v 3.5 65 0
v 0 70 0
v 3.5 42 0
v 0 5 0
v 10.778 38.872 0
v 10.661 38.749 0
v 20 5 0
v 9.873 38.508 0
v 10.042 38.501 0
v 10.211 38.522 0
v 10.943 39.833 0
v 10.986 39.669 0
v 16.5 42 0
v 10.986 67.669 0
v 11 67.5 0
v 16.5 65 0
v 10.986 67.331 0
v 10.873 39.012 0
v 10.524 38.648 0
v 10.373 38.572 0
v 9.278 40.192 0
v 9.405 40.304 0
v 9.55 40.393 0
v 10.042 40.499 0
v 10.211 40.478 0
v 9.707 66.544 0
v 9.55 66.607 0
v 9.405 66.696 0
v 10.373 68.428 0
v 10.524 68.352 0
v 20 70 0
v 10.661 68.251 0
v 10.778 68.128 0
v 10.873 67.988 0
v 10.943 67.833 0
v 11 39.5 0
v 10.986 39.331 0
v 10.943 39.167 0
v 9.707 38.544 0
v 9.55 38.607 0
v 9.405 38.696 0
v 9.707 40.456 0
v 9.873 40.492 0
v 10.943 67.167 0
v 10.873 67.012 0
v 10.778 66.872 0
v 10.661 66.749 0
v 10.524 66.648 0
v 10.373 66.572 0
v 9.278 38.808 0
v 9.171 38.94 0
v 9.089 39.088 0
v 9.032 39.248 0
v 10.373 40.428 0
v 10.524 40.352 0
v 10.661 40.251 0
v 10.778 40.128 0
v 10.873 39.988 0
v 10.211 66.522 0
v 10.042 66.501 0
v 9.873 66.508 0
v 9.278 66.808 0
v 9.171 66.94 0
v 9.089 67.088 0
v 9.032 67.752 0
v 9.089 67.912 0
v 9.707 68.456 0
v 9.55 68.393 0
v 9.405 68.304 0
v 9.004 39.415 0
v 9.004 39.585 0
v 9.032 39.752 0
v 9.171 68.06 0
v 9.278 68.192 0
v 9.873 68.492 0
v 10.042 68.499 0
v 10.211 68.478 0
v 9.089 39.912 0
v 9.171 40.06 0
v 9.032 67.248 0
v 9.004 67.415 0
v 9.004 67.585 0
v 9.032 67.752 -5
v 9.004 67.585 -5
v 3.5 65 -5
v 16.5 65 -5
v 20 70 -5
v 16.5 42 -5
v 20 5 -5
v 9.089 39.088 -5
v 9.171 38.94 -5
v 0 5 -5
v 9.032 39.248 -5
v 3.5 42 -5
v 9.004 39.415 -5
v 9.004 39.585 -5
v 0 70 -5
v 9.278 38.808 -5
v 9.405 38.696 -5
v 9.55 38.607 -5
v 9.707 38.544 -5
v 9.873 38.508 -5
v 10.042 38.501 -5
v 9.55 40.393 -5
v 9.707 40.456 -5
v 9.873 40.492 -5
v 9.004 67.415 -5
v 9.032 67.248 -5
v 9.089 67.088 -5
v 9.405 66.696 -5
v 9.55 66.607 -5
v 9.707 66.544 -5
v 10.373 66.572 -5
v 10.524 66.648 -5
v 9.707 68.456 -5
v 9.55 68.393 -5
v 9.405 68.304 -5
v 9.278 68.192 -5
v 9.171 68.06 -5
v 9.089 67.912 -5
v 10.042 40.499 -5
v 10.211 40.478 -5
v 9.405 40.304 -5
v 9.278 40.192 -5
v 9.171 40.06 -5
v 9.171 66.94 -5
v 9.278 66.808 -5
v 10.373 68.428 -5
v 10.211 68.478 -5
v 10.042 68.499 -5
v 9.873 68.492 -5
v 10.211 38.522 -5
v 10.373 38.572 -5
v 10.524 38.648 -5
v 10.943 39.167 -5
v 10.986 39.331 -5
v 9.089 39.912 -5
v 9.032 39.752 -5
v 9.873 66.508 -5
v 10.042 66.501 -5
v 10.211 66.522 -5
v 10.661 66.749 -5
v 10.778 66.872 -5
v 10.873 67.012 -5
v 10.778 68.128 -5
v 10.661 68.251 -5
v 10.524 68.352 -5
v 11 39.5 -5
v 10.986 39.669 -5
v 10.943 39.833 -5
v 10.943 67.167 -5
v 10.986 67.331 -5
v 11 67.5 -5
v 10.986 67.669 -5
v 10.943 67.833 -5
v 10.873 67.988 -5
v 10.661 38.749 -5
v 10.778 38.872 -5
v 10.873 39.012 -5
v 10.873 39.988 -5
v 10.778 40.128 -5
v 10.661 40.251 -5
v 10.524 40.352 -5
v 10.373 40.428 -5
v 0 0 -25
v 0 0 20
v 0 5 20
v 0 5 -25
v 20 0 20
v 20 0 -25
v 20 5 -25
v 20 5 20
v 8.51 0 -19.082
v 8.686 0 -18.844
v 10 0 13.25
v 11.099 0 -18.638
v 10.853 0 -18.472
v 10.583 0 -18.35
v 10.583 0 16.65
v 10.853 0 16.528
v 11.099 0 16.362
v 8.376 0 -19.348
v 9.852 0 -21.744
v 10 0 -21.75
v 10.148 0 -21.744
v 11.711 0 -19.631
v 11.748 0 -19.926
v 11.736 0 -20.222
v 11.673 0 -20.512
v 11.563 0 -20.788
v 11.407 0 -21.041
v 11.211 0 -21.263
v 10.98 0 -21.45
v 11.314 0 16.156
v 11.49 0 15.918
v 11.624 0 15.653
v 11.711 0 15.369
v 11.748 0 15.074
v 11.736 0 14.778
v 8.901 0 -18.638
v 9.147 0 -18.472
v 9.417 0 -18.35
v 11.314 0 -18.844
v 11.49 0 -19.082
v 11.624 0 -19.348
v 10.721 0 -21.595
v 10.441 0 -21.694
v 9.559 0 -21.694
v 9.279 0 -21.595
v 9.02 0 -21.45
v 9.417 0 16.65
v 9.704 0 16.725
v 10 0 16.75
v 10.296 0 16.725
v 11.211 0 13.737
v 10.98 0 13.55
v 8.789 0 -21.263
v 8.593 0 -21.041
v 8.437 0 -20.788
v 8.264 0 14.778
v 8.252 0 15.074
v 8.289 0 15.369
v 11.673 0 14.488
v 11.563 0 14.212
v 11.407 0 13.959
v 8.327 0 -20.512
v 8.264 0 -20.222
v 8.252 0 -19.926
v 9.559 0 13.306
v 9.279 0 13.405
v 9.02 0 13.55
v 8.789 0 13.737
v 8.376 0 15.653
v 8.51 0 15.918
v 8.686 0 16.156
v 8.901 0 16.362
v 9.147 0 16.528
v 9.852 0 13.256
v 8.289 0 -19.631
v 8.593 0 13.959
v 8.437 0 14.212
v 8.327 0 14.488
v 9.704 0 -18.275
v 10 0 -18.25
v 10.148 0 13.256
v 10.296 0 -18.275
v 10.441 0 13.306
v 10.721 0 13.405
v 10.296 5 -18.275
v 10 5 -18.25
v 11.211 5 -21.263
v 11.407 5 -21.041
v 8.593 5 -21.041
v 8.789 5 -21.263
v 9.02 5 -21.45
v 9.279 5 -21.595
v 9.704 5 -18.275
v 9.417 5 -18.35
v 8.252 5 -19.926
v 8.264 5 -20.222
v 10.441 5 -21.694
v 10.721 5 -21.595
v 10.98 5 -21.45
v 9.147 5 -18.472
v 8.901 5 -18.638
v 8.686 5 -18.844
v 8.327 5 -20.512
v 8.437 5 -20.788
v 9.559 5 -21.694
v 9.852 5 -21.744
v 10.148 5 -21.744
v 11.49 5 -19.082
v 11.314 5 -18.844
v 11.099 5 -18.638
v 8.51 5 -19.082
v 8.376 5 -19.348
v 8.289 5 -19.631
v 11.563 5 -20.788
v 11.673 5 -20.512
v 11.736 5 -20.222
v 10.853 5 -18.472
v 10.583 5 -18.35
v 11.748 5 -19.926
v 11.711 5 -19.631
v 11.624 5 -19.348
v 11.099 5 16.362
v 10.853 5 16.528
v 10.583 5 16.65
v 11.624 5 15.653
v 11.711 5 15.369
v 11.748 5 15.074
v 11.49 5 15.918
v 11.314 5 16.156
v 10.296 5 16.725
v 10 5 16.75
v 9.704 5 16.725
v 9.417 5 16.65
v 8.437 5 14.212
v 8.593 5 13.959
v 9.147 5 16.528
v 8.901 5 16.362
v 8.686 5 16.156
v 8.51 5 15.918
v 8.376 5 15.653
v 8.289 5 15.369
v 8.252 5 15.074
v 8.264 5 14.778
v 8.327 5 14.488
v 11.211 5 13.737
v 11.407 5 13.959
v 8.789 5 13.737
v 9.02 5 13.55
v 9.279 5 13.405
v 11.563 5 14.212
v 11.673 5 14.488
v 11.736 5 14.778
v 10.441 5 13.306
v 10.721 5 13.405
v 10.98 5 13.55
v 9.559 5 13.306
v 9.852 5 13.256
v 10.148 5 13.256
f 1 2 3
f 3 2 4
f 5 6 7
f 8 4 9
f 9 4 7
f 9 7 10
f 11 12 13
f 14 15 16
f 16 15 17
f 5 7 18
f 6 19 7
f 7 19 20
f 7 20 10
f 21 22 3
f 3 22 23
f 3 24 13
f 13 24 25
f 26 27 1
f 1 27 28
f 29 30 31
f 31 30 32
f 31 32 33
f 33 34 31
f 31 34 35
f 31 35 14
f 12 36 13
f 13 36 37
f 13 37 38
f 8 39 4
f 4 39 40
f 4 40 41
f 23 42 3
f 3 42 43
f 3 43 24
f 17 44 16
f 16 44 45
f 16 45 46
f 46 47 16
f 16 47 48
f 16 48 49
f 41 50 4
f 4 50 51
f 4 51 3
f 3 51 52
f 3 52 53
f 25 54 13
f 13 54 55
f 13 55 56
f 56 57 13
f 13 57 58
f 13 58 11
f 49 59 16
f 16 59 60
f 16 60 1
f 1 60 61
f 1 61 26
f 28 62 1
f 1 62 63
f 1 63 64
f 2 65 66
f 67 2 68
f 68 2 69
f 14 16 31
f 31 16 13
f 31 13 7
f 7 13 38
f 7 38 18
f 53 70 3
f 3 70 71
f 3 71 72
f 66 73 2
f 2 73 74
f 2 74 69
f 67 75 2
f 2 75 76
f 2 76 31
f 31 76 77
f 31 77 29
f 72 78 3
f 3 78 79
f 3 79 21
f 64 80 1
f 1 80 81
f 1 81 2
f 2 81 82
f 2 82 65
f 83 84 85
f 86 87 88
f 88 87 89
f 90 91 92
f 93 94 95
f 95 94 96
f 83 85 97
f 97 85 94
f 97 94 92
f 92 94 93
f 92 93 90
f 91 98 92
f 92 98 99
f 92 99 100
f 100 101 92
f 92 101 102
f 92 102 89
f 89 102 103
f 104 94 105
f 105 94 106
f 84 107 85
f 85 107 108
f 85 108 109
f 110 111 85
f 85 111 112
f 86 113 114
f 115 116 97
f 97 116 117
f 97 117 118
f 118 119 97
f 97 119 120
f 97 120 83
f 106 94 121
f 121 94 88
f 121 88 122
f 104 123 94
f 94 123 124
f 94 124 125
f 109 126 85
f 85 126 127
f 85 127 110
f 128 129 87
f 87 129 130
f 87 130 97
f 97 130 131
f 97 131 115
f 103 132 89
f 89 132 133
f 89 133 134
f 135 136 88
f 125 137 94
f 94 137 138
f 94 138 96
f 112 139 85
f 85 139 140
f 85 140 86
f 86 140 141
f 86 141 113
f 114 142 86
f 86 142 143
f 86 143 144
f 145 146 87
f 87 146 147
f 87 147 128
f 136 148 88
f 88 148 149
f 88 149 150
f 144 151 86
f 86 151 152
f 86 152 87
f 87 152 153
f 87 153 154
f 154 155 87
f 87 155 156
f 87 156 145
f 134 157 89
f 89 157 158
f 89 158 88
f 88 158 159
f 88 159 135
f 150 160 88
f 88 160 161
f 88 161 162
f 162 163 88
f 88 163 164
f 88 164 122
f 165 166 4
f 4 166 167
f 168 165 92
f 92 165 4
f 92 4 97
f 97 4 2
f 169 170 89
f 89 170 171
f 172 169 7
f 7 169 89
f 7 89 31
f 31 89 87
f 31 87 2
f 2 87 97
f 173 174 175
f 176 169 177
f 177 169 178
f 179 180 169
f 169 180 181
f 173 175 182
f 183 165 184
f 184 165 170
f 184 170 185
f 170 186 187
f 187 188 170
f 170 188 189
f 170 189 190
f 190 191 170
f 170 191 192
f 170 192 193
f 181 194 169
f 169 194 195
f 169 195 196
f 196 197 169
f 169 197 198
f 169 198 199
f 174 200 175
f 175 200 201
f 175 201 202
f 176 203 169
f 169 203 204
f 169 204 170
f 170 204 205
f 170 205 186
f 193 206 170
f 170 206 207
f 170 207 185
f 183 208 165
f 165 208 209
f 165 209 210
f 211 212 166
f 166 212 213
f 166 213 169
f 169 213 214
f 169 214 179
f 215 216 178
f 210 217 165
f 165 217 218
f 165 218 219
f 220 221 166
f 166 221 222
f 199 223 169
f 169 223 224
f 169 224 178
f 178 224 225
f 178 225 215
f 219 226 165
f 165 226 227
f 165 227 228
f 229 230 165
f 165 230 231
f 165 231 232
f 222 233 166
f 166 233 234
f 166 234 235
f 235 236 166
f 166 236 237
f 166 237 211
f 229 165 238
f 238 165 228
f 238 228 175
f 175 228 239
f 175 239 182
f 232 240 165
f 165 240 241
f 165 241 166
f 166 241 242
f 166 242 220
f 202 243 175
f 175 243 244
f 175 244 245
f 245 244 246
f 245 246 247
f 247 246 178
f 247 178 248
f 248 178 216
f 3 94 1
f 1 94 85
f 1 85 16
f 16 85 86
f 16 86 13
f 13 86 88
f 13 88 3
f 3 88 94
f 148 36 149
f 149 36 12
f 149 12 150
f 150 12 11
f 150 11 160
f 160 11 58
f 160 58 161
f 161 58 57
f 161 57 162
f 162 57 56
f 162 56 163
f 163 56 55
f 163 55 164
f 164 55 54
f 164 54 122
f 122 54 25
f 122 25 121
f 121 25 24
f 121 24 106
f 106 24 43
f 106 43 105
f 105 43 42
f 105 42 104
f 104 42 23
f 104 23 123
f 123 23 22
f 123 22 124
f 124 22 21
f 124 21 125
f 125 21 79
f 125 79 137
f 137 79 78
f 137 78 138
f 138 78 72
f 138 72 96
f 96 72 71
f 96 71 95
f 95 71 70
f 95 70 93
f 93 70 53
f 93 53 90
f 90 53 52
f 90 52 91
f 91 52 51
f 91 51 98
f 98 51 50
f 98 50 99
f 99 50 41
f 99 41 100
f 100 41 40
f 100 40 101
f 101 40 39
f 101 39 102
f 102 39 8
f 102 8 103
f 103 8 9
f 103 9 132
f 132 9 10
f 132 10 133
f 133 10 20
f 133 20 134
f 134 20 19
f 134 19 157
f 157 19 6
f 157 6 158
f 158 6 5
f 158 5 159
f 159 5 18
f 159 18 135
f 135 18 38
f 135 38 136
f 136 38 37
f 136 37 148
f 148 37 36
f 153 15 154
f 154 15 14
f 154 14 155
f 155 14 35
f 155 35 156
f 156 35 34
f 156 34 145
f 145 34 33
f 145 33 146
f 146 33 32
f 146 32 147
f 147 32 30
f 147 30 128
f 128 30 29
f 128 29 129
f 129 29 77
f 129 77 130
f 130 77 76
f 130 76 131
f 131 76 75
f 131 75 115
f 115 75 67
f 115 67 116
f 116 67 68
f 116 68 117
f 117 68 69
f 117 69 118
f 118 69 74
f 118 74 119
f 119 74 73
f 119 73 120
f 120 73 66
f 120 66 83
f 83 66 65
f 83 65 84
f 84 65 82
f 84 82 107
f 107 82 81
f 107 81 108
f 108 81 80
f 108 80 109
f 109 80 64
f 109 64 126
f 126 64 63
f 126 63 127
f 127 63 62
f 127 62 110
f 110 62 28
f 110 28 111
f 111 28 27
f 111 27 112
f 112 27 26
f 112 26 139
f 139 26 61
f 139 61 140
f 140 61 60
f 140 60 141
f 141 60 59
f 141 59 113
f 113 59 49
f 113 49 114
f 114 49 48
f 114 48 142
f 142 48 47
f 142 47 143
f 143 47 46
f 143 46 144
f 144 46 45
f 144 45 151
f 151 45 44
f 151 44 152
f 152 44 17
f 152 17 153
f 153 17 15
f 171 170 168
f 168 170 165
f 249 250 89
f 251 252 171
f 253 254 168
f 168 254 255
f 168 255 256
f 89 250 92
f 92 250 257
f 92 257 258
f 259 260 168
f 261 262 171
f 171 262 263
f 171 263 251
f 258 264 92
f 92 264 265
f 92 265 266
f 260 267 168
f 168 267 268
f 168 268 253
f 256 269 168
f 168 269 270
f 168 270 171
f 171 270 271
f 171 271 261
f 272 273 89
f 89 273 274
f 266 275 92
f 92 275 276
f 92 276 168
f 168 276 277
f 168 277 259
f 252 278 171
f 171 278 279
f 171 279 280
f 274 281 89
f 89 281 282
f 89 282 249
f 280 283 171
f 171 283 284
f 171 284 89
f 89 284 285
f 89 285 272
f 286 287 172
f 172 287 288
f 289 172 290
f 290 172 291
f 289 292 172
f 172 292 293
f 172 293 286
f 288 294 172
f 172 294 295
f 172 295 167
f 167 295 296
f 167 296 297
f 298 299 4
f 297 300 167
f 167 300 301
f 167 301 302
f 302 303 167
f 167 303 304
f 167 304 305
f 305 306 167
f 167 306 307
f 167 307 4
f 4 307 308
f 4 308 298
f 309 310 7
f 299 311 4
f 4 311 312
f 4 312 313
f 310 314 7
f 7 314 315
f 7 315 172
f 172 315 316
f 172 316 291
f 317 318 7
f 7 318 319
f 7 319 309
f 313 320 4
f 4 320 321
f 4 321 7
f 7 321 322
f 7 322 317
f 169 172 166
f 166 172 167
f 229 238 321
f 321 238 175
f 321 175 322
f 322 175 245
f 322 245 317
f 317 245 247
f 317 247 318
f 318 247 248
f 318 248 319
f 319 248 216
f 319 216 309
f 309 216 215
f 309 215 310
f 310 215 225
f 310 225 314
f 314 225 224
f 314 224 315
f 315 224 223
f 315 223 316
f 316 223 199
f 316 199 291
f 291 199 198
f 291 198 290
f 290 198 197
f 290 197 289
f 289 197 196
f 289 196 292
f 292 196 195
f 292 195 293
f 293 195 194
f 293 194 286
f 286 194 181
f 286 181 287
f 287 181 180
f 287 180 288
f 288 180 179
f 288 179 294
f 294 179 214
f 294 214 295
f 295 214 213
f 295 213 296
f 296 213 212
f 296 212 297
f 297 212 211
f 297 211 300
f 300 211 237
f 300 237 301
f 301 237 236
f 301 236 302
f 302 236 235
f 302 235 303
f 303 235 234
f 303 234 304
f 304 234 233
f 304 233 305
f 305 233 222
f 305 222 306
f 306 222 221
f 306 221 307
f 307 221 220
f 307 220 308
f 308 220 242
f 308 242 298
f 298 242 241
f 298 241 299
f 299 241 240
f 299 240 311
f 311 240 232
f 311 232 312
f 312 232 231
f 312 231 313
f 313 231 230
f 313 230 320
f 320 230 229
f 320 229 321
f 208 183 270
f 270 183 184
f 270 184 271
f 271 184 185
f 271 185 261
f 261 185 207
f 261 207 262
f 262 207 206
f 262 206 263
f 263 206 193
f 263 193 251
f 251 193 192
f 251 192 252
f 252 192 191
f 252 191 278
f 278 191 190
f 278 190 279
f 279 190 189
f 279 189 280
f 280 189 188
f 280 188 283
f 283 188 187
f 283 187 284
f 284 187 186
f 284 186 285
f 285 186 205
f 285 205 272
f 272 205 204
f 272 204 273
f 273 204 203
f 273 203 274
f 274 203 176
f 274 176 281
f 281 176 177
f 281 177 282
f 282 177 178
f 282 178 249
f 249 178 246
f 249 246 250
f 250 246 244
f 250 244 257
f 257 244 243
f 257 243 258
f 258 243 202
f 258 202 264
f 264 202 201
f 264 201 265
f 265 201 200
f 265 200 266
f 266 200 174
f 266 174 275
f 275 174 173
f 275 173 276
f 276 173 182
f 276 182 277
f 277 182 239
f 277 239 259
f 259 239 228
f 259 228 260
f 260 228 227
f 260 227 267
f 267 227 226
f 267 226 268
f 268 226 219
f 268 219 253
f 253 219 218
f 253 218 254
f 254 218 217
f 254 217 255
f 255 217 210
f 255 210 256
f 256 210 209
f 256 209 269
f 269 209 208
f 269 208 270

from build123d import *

# Parameters (mm, degrees)
IZIM1_W                          = 20
IZIM1_H                          = 5
Y_KSEKLIK_EKSTR_ZYON3_DEPTH      = 70
IZIM2_R                          = 1
IZIM2_W                          = 13
IZIM2_H                          = 23
KES_EKSTR_ZYON1_DEPTH            = 70
Y_KSEKLIK_EKSTR_ZYON4_DEPTH      = 20
Y_KSEKLIK_EKSTR_ZYON4_DEPTH_BACK = 25
IZIM3_W                          = 20
IZIM3_H                          = 5
IZIM4_R                          = 1.75
KES_EKSTR_ZYON2_DEPTH            = 25


with BuildPart() as part:
    # Çizim1 → Yükseklik-Ekstrüzyon3 (new body)
    with BuildSketch(Plane(origin=(0, 0, 0), x_dir=(1, 0, 0), z_dir=(0, 1, 0))):
        with Locations((10, 2.5)):
            Rectangle(IZIM1_W, IZIM1_H)
    extrude(amount=Y_KSEKLIK_EKSTR_ZYON3_DEPTH)

    # Çizim2 → Kes-Ekstrüzyon1 (cut)
    with BuildSketch(Plane.XY):
        with Locations((10, 67.5)):
            Circle(IZIM2_R)
        with Locations((10, 39.5)):
            Circle(IZIM2_R)
        with Locations((10, 53.5)):
            Rectangle(IZIM2_W, IZIM2_H)
    extrude(amount=-KES_EKSTR_ZYON1_DEPTH, mode=Mode.SUBTRACT)

    # Çizim3 → Yükseklik-Ekstrüzyon4 (add, two sides: drawn at the far end of the back side and taken through both)
    with BuildSketch(Plane.XY.offset(-Y_KSEKLIK_EKSTR_ZYON4_DEPTH_BACK)):
        with Locations((10, 2.5)):
            Rectangle(IZIM3_W, IZIM3_H)
    extrude(amount=Y_KSEKLIK_EKSTR_ZYON4_DEPTH + Y_KSEKLIK_EKSTR_ZYON4_DEPTH_BACK)

    # Çizim4 → Kes-Ekstrüzyon2 (cut)
    with BuildSketch(Plane(origin=(0, 5, 0), x_dir=(1, 0, 0), z_dir=(0, 1, 0))):
        with Locations(Location((10, -15, 0), (0, 0, 270))):
            Circle(IZIM4_R)
        with Locations(Location((10, 20, 0), (0, 0, 270))):
            Circle(IZIM4_R)
    extrude(amount=-KES_EKSTR_ZYON2_DEPTH, mode=Mode.SUBTRACT)


solid = part.part
